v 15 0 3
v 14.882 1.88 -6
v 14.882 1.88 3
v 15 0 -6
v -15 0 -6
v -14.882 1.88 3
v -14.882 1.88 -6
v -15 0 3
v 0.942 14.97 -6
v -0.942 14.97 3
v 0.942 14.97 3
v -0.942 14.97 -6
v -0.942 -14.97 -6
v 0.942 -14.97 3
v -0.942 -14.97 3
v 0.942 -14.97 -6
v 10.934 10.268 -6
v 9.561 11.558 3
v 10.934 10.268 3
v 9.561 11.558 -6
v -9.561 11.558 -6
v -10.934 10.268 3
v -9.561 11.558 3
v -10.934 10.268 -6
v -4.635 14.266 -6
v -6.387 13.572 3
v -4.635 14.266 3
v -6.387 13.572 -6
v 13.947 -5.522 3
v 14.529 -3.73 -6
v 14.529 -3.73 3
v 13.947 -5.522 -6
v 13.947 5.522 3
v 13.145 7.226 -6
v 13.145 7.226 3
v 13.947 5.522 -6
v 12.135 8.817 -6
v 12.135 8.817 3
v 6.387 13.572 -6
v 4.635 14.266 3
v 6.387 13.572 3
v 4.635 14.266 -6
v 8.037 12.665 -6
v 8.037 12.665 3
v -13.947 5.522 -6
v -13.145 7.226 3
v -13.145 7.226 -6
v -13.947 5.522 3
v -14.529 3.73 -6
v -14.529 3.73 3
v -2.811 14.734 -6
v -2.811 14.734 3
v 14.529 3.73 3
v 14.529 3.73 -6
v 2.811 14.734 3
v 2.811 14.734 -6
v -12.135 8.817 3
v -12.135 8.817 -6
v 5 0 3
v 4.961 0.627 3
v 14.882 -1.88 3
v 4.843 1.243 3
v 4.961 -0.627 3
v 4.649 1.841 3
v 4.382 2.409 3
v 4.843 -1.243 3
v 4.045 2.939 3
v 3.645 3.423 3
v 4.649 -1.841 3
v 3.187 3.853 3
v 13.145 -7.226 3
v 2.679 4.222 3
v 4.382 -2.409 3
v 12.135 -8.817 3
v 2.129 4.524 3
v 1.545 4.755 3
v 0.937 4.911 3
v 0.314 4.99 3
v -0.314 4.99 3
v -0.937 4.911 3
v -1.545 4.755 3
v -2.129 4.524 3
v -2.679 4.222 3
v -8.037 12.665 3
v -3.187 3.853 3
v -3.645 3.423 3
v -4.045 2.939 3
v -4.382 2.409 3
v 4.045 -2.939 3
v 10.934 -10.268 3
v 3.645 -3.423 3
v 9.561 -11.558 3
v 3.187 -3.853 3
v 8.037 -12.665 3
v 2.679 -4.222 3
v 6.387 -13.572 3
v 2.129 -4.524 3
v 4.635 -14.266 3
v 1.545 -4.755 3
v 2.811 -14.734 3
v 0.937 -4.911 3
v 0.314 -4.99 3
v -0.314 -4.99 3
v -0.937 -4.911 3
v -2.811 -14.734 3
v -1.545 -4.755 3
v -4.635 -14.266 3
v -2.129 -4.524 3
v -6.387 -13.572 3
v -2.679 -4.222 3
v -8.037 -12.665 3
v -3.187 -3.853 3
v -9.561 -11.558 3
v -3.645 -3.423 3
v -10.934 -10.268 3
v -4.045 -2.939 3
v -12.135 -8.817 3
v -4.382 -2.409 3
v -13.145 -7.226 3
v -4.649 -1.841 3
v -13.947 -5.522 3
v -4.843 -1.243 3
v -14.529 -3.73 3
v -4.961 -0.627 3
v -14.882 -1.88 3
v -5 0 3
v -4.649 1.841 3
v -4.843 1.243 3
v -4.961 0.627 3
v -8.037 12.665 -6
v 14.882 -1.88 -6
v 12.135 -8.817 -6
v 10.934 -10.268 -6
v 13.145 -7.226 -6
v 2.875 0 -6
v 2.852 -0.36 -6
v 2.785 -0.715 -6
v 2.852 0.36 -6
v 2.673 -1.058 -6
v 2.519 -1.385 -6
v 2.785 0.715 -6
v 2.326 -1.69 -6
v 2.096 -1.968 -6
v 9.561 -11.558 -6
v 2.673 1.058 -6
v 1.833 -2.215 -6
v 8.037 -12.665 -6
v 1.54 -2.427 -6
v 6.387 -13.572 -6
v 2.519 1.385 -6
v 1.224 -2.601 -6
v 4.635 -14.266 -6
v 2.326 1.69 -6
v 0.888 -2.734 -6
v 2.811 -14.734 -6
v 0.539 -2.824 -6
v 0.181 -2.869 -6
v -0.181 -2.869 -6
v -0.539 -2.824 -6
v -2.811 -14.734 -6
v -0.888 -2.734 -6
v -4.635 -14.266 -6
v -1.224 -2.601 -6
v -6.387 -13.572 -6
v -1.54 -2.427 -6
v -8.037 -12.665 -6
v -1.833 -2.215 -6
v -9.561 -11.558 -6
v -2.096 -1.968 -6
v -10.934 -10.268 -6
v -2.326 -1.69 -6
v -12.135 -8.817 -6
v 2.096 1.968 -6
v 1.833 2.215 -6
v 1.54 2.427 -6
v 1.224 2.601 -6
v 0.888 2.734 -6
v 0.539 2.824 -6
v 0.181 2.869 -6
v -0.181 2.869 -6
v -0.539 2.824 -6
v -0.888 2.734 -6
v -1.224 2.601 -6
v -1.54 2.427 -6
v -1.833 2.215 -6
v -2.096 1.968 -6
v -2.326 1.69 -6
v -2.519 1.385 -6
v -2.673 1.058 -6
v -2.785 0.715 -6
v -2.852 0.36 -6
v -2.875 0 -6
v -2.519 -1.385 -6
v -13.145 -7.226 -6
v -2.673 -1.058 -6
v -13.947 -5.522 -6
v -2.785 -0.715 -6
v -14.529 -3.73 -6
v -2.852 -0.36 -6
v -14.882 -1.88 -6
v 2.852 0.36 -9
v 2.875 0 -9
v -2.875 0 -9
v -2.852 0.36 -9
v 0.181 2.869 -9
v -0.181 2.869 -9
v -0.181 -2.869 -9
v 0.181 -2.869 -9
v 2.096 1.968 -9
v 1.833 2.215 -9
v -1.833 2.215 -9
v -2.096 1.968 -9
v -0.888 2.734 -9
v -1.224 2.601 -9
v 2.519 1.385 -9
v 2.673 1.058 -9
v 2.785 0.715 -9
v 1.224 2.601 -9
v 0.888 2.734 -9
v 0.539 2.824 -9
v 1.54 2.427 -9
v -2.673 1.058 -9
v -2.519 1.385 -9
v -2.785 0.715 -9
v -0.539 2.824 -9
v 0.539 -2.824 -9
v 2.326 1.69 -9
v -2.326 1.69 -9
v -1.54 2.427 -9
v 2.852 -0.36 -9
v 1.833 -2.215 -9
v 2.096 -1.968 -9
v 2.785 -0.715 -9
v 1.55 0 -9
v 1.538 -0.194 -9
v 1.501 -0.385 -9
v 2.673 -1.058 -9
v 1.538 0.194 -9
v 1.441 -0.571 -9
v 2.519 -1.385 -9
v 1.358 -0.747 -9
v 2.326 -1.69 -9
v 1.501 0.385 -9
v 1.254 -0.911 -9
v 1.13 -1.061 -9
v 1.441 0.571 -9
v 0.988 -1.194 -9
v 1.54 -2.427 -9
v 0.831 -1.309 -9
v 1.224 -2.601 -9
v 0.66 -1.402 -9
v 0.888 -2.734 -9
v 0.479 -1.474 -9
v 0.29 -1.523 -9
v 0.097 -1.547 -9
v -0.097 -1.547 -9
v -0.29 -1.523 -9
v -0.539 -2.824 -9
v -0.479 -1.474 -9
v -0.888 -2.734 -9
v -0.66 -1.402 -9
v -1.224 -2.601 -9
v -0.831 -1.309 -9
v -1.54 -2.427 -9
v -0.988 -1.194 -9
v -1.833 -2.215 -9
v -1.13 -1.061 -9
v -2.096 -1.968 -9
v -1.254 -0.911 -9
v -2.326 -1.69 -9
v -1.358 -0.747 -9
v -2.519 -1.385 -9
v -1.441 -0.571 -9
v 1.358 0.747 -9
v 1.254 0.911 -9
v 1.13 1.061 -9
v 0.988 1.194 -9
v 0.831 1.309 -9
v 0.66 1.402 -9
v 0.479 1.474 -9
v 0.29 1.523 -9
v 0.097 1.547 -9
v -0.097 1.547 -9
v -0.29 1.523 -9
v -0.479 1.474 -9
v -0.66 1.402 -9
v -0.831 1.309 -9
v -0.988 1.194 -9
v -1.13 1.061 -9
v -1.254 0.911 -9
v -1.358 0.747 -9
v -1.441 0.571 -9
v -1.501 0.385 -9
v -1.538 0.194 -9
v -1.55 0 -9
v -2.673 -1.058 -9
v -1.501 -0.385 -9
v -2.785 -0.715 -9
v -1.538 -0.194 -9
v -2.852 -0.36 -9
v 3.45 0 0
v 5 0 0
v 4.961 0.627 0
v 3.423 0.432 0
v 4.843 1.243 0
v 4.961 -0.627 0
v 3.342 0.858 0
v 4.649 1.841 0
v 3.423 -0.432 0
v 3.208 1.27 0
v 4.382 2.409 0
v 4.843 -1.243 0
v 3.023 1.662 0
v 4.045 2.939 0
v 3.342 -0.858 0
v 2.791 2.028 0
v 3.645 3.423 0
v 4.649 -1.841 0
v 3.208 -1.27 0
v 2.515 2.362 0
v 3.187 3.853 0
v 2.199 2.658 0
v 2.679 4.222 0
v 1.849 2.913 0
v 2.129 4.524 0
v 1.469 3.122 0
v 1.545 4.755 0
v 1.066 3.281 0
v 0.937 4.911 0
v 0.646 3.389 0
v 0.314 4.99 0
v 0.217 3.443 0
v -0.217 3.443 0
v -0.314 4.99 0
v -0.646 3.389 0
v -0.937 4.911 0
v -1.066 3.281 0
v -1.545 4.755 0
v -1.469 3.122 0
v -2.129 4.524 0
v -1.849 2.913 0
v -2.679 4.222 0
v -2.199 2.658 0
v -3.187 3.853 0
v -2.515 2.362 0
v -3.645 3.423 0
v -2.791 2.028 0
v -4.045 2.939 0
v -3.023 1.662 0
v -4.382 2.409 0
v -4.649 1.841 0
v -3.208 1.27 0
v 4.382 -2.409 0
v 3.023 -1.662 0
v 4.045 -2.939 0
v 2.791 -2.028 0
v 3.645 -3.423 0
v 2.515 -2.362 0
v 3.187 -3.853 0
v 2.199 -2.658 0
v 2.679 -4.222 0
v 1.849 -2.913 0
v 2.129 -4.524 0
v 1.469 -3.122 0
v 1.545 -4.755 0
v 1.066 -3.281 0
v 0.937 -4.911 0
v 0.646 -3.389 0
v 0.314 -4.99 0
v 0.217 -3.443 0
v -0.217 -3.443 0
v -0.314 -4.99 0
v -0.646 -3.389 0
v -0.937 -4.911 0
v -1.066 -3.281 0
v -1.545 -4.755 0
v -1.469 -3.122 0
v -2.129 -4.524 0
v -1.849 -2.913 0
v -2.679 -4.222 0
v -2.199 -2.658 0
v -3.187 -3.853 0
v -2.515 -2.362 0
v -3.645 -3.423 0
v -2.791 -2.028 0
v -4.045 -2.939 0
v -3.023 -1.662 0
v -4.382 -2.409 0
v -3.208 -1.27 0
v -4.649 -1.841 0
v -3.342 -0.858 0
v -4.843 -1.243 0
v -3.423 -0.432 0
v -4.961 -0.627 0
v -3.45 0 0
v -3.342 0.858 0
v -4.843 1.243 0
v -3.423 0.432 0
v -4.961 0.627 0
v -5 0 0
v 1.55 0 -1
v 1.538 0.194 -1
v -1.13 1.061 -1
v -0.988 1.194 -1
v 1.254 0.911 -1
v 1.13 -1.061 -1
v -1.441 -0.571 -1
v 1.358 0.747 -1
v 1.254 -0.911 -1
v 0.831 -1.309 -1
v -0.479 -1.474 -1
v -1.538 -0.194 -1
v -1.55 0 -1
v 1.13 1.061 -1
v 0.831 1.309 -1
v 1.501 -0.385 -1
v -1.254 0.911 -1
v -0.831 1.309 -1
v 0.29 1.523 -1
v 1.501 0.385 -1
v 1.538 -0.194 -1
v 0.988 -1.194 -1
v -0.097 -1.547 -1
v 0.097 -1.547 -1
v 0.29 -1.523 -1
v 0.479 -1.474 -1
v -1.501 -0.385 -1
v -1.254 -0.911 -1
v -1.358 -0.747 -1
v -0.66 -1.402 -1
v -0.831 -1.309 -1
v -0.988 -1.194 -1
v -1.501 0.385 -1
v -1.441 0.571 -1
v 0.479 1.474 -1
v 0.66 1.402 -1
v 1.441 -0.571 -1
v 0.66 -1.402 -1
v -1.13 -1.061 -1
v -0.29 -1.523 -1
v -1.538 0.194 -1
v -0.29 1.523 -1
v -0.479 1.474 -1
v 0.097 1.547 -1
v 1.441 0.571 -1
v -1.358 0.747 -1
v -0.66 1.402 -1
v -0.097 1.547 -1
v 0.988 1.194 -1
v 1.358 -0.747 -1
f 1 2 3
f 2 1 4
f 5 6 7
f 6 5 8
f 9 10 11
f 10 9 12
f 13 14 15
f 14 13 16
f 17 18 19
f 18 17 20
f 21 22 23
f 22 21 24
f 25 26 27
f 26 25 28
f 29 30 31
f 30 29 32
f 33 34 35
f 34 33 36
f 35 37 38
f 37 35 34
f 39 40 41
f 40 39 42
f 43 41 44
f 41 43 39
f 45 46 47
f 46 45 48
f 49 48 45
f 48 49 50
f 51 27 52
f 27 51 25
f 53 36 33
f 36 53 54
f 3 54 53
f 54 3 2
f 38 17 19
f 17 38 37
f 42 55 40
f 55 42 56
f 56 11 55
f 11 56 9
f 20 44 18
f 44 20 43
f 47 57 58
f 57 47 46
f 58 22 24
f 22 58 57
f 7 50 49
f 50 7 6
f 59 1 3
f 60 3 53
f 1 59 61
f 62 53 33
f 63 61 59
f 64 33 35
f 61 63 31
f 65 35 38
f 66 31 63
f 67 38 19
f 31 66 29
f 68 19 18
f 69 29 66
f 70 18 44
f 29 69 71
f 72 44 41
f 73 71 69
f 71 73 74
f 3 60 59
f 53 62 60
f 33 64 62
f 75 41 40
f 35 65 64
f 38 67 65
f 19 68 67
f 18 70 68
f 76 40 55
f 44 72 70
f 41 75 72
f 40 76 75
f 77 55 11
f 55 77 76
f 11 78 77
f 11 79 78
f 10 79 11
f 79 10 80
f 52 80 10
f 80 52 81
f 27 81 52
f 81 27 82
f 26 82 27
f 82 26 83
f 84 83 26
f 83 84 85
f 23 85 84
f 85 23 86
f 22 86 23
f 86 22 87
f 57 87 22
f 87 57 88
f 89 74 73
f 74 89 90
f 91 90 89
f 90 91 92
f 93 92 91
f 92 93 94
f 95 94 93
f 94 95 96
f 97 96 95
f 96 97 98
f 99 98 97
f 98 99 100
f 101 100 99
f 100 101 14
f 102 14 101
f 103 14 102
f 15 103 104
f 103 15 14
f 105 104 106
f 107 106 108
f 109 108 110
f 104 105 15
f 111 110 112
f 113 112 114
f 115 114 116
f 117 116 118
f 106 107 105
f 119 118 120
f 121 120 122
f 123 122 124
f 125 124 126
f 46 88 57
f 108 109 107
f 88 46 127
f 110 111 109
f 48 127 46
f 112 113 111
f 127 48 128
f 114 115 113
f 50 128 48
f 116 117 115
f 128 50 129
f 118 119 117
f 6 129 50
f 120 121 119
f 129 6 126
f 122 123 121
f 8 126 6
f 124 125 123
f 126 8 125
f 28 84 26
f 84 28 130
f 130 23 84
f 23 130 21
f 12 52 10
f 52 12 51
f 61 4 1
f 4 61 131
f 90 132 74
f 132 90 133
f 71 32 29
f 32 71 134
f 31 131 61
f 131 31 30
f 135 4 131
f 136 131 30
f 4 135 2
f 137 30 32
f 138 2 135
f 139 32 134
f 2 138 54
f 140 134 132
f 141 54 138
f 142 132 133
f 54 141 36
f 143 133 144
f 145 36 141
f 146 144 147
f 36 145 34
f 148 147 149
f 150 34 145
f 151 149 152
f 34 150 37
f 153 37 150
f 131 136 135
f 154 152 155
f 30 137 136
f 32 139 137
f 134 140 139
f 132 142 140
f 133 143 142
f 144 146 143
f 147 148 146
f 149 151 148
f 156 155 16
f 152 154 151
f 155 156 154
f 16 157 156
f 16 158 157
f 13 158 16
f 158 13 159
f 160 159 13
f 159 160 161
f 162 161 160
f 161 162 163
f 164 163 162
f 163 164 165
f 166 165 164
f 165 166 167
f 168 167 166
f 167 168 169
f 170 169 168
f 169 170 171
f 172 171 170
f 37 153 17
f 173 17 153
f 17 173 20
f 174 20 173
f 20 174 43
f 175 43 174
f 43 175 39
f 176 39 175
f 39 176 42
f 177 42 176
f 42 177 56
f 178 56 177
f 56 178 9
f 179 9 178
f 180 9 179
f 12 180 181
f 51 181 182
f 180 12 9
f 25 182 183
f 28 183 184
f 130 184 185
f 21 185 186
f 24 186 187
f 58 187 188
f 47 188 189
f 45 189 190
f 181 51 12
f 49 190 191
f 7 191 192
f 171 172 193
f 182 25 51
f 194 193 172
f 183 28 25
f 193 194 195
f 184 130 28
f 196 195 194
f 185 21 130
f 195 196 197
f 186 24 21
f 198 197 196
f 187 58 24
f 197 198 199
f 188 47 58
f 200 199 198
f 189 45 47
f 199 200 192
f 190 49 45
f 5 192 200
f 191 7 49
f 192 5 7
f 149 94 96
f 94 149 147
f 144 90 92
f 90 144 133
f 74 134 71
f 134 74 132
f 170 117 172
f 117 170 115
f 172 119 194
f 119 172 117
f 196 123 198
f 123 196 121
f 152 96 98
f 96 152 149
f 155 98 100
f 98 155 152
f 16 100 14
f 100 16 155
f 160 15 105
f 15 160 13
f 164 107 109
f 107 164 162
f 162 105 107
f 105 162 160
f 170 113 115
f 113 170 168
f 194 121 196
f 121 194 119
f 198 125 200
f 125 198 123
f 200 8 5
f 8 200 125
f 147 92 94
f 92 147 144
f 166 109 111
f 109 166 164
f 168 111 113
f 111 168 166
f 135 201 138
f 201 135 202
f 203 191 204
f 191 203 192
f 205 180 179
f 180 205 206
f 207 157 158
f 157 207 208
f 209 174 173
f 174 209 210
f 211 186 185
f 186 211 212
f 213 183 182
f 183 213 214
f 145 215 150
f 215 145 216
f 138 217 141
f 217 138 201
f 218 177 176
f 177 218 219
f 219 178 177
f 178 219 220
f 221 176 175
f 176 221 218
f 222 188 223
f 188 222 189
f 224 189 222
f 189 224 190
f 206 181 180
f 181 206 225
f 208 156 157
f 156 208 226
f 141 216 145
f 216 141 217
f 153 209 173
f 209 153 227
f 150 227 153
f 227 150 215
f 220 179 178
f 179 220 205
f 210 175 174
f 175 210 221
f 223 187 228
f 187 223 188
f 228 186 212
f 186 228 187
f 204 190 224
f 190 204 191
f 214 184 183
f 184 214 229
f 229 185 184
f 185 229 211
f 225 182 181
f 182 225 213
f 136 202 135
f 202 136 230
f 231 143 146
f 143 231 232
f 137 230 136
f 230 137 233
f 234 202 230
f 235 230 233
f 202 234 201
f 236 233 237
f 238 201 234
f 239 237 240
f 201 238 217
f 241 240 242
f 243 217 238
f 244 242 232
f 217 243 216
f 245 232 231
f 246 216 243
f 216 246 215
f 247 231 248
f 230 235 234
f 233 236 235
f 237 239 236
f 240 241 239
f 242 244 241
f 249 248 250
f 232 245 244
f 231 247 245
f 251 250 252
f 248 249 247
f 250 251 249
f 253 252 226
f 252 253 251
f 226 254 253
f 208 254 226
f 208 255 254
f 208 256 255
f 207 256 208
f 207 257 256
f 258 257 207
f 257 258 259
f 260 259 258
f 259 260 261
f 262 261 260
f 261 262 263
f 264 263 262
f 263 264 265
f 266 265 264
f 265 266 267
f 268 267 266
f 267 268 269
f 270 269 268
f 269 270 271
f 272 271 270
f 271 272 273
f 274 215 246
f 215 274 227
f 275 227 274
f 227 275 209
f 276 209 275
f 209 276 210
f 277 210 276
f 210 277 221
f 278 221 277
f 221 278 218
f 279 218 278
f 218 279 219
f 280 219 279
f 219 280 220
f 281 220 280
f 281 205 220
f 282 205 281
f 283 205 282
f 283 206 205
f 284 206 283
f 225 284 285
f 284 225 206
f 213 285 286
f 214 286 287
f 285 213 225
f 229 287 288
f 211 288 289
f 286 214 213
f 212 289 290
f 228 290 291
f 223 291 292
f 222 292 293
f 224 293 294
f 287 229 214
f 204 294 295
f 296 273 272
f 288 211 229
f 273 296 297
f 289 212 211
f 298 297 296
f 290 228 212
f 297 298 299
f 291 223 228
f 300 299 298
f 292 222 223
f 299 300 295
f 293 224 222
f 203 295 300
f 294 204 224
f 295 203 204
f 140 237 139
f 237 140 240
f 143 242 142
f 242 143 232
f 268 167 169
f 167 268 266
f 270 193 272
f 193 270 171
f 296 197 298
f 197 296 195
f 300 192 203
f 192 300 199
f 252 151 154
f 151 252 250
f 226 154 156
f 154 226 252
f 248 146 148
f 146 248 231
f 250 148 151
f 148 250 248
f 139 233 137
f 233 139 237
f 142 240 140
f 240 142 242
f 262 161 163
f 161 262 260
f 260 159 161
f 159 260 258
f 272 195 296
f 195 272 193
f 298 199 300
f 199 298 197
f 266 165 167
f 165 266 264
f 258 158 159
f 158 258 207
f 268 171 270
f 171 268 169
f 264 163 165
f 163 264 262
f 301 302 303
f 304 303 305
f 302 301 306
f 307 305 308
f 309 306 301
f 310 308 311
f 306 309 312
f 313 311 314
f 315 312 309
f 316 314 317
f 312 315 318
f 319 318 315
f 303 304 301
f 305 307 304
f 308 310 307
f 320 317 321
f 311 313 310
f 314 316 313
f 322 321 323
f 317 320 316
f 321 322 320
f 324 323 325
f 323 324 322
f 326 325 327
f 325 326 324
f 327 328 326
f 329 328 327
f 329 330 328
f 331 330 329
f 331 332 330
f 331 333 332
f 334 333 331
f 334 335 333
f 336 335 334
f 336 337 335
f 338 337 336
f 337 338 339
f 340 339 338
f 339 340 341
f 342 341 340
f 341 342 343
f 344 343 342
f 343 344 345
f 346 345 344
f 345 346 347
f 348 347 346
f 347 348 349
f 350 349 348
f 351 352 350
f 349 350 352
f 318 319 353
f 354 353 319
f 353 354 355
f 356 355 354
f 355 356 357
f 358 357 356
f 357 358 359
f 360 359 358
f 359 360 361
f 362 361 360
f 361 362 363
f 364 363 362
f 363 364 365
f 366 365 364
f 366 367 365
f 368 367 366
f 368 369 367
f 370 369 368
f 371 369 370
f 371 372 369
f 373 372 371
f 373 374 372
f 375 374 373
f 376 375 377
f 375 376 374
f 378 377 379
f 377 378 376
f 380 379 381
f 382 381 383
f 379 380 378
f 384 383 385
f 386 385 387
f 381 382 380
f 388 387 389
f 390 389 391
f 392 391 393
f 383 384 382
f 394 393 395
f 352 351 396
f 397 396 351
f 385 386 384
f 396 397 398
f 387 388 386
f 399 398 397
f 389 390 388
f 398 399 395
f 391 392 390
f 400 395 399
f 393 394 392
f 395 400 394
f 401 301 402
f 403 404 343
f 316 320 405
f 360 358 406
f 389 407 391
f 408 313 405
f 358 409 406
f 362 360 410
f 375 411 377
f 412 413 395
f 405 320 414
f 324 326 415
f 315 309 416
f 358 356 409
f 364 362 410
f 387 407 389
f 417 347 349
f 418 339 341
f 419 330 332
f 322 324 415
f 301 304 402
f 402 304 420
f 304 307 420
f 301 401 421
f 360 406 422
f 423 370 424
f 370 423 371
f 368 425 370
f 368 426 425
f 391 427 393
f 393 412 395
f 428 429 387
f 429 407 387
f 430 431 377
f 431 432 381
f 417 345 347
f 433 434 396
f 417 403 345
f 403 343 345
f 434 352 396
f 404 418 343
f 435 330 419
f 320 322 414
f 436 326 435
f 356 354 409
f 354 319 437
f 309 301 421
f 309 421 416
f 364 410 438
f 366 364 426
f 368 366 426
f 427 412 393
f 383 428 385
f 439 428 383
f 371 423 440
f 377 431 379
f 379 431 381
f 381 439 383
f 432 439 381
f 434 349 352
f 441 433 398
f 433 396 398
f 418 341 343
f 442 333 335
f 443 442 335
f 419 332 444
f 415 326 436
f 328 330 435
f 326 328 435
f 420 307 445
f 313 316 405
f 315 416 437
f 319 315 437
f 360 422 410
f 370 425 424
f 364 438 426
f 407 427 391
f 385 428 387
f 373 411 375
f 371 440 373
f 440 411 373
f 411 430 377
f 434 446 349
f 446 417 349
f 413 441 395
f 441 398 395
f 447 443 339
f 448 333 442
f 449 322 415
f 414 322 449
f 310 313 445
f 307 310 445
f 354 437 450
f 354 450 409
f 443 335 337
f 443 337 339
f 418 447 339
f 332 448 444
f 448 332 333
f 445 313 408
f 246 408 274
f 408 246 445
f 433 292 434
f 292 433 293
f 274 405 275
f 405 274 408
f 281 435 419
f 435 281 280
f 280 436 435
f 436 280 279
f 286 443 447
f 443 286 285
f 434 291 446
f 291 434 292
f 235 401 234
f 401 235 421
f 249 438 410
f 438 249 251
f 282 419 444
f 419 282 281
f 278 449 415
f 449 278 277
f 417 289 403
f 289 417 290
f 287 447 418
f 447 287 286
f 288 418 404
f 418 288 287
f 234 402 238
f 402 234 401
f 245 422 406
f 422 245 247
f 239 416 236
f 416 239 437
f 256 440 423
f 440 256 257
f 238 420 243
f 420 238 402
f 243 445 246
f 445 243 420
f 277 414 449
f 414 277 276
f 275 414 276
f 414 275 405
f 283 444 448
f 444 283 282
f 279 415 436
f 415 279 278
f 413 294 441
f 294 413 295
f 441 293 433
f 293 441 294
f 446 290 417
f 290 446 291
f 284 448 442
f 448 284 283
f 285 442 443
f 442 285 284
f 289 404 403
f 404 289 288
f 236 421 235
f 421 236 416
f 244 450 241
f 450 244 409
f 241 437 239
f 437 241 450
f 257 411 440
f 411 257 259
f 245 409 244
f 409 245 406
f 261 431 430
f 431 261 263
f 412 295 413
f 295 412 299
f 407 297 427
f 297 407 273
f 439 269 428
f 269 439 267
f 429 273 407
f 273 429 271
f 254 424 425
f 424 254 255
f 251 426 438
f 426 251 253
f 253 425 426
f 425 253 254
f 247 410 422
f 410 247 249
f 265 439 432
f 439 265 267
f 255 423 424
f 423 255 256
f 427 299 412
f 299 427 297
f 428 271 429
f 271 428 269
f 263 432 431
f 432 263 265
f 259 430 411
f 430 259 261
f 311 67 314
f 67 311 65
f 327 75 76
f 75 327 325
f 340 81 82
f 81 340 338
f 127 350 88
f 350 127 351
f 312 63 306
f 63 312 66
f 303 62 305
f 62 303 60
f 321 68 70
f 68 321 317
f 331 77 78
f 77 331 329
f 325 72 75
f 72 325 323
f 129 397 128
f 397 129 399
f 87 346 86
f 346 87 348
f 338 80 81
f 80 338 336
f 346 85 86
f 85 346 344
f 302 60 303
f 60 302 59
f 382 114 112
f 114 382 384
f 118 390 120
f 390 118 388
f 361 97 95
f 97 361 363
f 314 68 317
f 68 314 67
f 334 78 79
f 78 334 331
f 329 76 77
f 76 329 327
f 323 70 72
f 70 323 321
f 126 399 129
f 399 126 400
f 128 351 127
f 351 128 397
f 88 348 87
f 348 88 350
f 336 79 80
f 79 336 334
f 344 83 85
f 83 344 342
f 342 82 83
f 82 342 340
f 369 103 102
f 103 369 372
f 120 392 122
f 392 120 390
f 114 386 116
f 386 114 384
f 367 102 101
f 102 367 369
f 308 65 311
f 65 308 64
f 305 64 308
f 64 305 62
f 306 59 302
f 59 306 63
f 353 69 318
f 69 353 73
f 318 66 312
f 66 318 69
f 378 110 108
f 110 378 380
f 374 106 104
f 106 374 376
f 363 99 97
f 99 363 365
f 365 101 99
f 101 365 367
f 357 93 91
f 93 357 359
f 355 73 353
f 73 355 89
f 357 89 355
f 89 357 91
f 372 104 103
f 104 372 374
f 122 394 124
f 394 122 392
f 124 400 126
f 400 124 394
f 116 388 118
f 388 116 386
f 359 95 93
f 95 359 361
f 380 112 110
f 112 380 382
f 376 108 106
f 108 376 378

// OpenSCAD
$fn = 50;


difference() {
	union() {
		translate(v = [0, 0, -6.0000000000]) {
			cylinder(h = 9, r = 15.0000000000);
		}
		#translate(v = [0, 0, -9.0000000000]) {
			cylinder(h = 9, r = 2.8750000000);
		}
	}
	union() {
		translate(v = [0, 0, 0]) {
			rotate(a = [0, 0, 0]) {
				difference() {
					union() {
						translate(v = [0, 0, -9.0000000000]) {
							cylinder(h = 9, r = 1.2500000000);
						}
						translate(v = [0, 0, -1.0000000000]) {
							cylinder(h = 1.0000000000, r1 = 1.5500000000, r2 = 3.4500000000);
						}
						translate(v = [0, 0, -9.0000000000]) {
							cylinder(h = 9, r = 1.5500000000);
						}
						translate(v = [0, 0, -9.0000000000]) {
							cylinder(h = 9, r = 1.2500000000);
						}
					}
					union();
				}
			}
		}
		#cylinder(h = 3, r = 5.0000000000);
	}
}
